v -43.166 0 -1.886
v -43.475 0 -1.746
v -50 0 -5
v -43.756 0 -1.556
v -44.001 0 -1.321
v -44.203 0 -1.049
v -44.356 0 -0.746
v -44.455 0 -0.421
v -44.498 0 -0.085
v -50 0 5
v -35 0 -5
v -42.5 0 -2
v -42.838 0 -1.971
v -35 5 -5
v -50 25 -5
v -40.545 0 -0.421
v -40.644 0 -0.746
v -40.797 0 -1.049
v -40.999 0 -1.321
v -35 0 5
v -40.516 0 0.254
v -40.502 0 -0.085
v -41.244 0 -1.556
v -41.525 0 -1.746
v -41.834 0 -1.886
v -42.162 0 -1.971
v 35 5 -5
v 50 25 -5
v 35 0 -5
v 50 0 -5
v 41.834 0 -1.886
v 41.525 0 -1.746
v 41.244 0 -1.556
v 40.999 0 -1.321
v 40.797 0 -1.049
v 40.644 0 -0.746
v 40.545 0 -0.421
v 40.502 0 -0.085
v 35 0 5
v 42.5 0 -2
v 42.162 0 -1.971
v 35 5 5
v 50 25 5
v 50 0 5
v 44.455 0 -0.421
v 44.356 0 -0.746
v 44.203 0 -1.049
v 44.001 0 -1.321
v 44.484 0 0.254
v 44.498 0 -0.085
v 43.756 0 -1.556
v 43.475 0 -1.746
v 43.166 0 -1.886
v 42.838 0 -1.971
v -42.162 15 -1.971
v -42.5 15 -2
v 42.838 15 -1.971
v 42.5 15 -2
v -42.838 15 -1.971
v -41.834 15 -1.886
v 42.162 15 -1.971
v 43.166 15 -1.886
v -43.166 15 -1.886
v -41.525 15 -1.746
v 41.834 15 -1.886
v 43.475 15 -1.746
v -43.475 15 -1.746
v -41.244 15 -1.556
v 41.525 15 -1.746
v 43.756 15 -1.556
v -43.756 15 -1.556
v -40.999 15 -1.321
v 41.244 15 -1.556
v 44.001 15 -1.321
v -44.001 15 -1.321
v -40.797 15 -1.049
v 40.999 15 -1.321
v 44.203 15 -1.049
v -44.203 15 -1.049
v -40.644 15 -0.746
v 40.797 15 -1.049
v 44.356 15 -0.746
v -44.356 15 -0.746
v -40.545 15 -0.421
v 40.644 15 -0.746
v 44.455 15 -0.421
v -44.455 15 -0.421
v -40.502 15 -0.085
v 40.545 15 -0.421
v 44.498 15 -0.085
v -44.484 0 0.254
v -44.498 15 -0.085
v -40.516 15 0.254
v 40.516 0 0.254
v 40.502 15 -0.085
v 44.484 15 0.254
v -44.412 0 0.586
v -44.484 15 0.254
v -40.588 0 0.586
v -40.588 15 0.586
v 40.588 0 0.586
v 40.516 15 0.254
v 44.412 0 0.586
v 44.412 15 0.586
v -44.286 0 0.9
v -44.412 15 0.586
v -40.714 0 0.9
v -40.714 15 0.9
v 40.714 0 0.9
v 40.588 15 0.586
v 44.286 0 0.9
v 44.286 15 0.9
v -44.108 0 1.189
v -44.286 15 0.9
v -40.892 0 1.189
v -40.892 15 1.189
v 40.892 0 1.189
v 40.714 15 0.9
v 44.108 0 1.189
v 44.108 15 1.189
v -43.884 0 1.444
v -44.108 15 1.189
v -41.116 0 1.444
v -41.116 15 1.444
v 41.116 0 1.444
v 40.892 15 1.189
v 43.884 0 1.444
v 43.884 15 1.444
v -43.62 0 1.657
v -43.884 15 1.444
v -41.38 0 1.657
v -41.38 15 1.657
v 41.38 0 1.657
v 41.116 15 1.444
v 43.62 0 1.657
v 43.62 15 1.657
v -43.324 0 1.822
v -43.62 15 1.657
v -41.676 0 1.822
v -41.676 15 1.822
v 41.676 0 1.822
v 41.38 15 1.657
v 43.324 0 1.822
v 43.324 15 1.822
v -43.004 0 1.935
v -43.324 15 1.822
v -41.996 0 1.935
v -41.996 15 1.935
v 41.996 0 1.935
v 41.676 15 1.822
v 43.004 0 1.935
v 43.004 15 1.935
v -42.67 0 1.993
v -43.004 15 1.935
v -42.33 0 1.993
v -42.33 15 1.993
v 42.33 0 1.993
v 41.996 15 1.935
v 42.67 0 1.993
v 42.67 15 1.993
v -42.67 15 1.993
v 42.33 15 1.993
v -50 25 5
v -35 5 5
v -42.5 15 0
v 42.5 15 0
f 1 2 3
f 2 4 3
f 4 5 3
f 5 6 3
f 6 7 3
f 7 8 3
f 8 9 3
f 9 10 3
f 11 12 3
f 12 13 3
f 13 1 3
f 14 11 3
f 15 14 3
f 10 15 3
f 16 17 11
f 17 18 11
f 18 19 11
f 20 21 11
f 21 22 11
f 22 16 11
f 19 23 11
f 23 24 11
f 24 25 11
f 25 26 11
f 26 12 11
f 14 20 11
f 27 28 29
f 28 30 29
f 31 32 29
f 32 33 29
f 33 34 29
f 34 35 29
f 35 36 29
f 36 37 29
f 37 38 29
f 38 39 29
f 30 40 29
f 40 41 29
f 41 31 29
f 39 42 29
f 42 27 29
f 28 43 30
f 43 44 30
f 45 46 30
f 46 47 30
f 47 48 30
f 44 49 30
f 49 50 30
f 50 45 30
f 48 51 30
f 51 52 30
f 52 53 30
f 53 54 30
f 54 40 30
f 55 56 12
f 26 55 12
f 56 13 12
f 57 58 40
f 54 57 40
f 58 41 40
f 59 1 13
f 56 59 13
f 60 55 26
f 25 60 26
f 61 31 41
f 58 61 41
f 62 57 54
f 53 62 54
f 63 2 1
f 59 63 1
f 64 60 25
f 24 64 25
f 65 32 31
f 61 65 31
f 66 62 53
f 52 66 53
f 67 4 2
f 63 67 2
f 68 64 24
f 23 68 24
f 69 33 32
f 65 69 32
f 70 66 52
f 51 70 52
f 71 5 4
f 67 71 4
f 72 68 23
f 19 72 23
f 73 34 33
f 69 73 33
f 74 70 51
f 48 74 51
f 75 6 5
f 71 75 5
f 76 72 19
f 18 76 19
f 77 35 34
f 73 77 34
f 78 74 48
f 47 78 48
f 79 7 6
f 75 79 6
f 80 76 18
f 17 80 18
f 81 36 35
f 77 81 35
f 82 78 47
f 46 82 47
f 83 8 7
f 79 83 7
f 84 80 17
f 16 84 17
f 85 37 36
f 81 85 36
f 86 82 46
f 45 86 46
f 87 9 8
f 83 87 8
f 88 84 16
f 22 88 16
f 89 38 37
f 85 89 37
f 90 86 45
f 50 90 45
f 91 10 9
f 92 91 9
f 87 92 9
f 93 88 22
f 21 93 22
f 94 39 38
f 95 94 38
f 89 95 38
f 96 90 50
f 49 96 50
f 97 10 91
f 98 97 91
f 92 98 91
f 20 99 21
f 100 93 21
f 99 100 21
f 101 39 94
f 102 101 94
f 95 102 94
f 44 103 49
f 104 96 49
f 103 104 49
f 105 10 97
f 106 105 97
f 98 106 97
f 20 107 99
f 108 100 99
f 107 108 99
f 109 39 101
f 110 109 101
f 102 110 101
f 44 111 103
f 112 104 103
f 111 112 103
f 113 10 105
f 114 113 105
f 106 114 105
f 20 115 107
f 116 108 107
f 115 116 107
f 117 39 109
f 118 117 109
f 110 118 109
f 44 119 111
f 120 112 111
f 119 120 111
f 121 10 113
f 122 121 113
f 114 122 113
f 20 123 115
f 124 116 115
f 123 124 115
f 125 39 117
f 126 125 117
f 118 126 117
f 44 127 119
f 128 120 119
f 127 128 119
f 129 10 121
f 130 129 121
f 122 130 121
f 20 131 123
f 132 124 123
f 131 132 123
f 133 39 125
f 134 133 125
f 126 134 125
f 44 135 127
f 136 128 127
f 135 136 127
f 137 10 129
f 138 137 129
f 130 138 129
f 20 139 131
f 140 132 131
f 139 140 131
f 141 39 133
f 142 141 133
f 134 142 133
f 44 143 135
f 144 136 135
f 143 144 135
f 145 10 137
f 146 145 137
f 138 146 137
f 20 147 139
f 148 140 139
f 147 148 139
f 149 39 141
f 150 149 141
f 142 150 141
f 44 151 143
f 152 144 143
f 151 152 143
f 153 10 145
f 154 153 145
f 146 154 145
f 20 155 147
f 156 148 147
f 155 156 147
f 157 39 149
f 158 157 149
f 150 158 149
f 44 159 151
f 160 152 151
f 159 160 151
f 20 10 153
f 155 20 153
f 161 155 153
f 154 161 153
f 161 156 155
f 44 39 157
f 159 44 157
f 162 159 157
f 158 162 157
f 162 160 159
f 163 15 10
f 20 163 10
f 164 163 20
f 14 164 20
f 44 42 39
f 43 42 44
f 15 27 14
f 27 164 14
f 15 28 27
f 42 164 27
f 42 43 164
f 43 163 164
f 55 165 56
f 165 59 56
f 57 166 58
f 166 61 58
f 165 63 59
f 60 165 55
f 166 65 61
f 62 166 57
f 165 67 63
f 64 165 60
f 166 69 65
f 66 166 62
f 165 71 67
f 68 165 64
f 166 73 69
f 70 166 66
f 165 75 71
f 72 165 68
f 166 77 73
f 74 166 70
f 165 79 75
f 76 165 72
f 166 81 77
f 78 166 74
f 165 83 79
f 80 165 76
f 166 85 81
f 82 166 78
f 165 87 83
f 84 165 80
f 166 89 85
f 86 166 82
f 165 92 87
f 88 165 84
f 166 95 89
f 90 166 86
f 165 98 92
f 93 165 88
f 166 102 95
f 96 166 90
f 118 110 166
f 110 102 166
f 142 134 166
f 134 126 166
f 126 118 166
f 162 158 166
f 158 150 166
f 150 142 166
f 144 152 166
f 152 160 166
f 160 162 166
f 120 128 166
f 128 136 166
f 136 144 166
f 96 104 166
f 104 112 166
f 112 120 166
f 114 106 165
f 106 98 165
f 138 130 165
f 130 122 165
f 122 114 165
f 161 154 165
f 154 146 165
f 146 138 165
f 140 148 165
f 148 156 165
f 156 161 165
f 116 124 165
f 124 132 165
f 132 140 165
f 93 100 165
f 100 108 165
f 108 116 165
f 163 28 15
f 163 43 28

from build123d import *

# Parameters (mm, degrees)
BOSS_EXTRU_1_DEPTH      = 25
ENL_V_MAT_EXTRU_1_REACH = 58.789
ESQUISSE3_R             = 2
ENL_V_MAT_EXTRU_2_DEPTH = 15


with BuildPart() as part:
    # Esquisse1 → Boss.-Extru.1 (new body)
    with BuildSketch(Plane(origin=(0, 0, 0), x_dir=(1, 0, 0), z_dir=(0, 1, 0))):
        Polygon((50, 0), (50, 5), (-50, 5), (-50, -5), (50, -5), align=None)
    extrude(amount=BOSS_EXTRU_1_DEPTH)

    # Esquisse2 → Enlèv. mat.-Extru.1 (cut, up to next)
    with BuildSketch(Plane.XY.offset(5), mode=Mode.PRIVATE) as enl_v_mat_extru_1_sk1:
        Polygon((0, 0), (35, 0), (35, 5), (-35, 5), (-35, 0), align=None)
    enl_v_mat_extru_1_tool1 = extrude(enl_v_mat_extru_1_sk1.sketch, amount=-ENL_V_MAT_EXTRU_1_REACH, mode=Mode.PRIVATE) & part.part
    add(enl_v_mat_extru_1_tool1.solids().sort_by_distance((0, 2.5, 5))[0], mode=Mode.SUBTRACT)

    # Esquisse3 → Enlèv. mat.-Extru.2 (cut)
    with BuildSketch(Plane.XZ):
        with Locations(Location((-42.5, 0, 0), (0, 0, 270))):
            Circle(ESQUISSE3_R)
        with Locations(Location((42.5, 0, 0), (0, 0, 270))):
            Circle(ESQUISSE3_R)
    extrude(amount=-ENL_V_MAT_EXTRU_2_DEPTH, mode=Mode.SUBTRACT)


solid = part.part
